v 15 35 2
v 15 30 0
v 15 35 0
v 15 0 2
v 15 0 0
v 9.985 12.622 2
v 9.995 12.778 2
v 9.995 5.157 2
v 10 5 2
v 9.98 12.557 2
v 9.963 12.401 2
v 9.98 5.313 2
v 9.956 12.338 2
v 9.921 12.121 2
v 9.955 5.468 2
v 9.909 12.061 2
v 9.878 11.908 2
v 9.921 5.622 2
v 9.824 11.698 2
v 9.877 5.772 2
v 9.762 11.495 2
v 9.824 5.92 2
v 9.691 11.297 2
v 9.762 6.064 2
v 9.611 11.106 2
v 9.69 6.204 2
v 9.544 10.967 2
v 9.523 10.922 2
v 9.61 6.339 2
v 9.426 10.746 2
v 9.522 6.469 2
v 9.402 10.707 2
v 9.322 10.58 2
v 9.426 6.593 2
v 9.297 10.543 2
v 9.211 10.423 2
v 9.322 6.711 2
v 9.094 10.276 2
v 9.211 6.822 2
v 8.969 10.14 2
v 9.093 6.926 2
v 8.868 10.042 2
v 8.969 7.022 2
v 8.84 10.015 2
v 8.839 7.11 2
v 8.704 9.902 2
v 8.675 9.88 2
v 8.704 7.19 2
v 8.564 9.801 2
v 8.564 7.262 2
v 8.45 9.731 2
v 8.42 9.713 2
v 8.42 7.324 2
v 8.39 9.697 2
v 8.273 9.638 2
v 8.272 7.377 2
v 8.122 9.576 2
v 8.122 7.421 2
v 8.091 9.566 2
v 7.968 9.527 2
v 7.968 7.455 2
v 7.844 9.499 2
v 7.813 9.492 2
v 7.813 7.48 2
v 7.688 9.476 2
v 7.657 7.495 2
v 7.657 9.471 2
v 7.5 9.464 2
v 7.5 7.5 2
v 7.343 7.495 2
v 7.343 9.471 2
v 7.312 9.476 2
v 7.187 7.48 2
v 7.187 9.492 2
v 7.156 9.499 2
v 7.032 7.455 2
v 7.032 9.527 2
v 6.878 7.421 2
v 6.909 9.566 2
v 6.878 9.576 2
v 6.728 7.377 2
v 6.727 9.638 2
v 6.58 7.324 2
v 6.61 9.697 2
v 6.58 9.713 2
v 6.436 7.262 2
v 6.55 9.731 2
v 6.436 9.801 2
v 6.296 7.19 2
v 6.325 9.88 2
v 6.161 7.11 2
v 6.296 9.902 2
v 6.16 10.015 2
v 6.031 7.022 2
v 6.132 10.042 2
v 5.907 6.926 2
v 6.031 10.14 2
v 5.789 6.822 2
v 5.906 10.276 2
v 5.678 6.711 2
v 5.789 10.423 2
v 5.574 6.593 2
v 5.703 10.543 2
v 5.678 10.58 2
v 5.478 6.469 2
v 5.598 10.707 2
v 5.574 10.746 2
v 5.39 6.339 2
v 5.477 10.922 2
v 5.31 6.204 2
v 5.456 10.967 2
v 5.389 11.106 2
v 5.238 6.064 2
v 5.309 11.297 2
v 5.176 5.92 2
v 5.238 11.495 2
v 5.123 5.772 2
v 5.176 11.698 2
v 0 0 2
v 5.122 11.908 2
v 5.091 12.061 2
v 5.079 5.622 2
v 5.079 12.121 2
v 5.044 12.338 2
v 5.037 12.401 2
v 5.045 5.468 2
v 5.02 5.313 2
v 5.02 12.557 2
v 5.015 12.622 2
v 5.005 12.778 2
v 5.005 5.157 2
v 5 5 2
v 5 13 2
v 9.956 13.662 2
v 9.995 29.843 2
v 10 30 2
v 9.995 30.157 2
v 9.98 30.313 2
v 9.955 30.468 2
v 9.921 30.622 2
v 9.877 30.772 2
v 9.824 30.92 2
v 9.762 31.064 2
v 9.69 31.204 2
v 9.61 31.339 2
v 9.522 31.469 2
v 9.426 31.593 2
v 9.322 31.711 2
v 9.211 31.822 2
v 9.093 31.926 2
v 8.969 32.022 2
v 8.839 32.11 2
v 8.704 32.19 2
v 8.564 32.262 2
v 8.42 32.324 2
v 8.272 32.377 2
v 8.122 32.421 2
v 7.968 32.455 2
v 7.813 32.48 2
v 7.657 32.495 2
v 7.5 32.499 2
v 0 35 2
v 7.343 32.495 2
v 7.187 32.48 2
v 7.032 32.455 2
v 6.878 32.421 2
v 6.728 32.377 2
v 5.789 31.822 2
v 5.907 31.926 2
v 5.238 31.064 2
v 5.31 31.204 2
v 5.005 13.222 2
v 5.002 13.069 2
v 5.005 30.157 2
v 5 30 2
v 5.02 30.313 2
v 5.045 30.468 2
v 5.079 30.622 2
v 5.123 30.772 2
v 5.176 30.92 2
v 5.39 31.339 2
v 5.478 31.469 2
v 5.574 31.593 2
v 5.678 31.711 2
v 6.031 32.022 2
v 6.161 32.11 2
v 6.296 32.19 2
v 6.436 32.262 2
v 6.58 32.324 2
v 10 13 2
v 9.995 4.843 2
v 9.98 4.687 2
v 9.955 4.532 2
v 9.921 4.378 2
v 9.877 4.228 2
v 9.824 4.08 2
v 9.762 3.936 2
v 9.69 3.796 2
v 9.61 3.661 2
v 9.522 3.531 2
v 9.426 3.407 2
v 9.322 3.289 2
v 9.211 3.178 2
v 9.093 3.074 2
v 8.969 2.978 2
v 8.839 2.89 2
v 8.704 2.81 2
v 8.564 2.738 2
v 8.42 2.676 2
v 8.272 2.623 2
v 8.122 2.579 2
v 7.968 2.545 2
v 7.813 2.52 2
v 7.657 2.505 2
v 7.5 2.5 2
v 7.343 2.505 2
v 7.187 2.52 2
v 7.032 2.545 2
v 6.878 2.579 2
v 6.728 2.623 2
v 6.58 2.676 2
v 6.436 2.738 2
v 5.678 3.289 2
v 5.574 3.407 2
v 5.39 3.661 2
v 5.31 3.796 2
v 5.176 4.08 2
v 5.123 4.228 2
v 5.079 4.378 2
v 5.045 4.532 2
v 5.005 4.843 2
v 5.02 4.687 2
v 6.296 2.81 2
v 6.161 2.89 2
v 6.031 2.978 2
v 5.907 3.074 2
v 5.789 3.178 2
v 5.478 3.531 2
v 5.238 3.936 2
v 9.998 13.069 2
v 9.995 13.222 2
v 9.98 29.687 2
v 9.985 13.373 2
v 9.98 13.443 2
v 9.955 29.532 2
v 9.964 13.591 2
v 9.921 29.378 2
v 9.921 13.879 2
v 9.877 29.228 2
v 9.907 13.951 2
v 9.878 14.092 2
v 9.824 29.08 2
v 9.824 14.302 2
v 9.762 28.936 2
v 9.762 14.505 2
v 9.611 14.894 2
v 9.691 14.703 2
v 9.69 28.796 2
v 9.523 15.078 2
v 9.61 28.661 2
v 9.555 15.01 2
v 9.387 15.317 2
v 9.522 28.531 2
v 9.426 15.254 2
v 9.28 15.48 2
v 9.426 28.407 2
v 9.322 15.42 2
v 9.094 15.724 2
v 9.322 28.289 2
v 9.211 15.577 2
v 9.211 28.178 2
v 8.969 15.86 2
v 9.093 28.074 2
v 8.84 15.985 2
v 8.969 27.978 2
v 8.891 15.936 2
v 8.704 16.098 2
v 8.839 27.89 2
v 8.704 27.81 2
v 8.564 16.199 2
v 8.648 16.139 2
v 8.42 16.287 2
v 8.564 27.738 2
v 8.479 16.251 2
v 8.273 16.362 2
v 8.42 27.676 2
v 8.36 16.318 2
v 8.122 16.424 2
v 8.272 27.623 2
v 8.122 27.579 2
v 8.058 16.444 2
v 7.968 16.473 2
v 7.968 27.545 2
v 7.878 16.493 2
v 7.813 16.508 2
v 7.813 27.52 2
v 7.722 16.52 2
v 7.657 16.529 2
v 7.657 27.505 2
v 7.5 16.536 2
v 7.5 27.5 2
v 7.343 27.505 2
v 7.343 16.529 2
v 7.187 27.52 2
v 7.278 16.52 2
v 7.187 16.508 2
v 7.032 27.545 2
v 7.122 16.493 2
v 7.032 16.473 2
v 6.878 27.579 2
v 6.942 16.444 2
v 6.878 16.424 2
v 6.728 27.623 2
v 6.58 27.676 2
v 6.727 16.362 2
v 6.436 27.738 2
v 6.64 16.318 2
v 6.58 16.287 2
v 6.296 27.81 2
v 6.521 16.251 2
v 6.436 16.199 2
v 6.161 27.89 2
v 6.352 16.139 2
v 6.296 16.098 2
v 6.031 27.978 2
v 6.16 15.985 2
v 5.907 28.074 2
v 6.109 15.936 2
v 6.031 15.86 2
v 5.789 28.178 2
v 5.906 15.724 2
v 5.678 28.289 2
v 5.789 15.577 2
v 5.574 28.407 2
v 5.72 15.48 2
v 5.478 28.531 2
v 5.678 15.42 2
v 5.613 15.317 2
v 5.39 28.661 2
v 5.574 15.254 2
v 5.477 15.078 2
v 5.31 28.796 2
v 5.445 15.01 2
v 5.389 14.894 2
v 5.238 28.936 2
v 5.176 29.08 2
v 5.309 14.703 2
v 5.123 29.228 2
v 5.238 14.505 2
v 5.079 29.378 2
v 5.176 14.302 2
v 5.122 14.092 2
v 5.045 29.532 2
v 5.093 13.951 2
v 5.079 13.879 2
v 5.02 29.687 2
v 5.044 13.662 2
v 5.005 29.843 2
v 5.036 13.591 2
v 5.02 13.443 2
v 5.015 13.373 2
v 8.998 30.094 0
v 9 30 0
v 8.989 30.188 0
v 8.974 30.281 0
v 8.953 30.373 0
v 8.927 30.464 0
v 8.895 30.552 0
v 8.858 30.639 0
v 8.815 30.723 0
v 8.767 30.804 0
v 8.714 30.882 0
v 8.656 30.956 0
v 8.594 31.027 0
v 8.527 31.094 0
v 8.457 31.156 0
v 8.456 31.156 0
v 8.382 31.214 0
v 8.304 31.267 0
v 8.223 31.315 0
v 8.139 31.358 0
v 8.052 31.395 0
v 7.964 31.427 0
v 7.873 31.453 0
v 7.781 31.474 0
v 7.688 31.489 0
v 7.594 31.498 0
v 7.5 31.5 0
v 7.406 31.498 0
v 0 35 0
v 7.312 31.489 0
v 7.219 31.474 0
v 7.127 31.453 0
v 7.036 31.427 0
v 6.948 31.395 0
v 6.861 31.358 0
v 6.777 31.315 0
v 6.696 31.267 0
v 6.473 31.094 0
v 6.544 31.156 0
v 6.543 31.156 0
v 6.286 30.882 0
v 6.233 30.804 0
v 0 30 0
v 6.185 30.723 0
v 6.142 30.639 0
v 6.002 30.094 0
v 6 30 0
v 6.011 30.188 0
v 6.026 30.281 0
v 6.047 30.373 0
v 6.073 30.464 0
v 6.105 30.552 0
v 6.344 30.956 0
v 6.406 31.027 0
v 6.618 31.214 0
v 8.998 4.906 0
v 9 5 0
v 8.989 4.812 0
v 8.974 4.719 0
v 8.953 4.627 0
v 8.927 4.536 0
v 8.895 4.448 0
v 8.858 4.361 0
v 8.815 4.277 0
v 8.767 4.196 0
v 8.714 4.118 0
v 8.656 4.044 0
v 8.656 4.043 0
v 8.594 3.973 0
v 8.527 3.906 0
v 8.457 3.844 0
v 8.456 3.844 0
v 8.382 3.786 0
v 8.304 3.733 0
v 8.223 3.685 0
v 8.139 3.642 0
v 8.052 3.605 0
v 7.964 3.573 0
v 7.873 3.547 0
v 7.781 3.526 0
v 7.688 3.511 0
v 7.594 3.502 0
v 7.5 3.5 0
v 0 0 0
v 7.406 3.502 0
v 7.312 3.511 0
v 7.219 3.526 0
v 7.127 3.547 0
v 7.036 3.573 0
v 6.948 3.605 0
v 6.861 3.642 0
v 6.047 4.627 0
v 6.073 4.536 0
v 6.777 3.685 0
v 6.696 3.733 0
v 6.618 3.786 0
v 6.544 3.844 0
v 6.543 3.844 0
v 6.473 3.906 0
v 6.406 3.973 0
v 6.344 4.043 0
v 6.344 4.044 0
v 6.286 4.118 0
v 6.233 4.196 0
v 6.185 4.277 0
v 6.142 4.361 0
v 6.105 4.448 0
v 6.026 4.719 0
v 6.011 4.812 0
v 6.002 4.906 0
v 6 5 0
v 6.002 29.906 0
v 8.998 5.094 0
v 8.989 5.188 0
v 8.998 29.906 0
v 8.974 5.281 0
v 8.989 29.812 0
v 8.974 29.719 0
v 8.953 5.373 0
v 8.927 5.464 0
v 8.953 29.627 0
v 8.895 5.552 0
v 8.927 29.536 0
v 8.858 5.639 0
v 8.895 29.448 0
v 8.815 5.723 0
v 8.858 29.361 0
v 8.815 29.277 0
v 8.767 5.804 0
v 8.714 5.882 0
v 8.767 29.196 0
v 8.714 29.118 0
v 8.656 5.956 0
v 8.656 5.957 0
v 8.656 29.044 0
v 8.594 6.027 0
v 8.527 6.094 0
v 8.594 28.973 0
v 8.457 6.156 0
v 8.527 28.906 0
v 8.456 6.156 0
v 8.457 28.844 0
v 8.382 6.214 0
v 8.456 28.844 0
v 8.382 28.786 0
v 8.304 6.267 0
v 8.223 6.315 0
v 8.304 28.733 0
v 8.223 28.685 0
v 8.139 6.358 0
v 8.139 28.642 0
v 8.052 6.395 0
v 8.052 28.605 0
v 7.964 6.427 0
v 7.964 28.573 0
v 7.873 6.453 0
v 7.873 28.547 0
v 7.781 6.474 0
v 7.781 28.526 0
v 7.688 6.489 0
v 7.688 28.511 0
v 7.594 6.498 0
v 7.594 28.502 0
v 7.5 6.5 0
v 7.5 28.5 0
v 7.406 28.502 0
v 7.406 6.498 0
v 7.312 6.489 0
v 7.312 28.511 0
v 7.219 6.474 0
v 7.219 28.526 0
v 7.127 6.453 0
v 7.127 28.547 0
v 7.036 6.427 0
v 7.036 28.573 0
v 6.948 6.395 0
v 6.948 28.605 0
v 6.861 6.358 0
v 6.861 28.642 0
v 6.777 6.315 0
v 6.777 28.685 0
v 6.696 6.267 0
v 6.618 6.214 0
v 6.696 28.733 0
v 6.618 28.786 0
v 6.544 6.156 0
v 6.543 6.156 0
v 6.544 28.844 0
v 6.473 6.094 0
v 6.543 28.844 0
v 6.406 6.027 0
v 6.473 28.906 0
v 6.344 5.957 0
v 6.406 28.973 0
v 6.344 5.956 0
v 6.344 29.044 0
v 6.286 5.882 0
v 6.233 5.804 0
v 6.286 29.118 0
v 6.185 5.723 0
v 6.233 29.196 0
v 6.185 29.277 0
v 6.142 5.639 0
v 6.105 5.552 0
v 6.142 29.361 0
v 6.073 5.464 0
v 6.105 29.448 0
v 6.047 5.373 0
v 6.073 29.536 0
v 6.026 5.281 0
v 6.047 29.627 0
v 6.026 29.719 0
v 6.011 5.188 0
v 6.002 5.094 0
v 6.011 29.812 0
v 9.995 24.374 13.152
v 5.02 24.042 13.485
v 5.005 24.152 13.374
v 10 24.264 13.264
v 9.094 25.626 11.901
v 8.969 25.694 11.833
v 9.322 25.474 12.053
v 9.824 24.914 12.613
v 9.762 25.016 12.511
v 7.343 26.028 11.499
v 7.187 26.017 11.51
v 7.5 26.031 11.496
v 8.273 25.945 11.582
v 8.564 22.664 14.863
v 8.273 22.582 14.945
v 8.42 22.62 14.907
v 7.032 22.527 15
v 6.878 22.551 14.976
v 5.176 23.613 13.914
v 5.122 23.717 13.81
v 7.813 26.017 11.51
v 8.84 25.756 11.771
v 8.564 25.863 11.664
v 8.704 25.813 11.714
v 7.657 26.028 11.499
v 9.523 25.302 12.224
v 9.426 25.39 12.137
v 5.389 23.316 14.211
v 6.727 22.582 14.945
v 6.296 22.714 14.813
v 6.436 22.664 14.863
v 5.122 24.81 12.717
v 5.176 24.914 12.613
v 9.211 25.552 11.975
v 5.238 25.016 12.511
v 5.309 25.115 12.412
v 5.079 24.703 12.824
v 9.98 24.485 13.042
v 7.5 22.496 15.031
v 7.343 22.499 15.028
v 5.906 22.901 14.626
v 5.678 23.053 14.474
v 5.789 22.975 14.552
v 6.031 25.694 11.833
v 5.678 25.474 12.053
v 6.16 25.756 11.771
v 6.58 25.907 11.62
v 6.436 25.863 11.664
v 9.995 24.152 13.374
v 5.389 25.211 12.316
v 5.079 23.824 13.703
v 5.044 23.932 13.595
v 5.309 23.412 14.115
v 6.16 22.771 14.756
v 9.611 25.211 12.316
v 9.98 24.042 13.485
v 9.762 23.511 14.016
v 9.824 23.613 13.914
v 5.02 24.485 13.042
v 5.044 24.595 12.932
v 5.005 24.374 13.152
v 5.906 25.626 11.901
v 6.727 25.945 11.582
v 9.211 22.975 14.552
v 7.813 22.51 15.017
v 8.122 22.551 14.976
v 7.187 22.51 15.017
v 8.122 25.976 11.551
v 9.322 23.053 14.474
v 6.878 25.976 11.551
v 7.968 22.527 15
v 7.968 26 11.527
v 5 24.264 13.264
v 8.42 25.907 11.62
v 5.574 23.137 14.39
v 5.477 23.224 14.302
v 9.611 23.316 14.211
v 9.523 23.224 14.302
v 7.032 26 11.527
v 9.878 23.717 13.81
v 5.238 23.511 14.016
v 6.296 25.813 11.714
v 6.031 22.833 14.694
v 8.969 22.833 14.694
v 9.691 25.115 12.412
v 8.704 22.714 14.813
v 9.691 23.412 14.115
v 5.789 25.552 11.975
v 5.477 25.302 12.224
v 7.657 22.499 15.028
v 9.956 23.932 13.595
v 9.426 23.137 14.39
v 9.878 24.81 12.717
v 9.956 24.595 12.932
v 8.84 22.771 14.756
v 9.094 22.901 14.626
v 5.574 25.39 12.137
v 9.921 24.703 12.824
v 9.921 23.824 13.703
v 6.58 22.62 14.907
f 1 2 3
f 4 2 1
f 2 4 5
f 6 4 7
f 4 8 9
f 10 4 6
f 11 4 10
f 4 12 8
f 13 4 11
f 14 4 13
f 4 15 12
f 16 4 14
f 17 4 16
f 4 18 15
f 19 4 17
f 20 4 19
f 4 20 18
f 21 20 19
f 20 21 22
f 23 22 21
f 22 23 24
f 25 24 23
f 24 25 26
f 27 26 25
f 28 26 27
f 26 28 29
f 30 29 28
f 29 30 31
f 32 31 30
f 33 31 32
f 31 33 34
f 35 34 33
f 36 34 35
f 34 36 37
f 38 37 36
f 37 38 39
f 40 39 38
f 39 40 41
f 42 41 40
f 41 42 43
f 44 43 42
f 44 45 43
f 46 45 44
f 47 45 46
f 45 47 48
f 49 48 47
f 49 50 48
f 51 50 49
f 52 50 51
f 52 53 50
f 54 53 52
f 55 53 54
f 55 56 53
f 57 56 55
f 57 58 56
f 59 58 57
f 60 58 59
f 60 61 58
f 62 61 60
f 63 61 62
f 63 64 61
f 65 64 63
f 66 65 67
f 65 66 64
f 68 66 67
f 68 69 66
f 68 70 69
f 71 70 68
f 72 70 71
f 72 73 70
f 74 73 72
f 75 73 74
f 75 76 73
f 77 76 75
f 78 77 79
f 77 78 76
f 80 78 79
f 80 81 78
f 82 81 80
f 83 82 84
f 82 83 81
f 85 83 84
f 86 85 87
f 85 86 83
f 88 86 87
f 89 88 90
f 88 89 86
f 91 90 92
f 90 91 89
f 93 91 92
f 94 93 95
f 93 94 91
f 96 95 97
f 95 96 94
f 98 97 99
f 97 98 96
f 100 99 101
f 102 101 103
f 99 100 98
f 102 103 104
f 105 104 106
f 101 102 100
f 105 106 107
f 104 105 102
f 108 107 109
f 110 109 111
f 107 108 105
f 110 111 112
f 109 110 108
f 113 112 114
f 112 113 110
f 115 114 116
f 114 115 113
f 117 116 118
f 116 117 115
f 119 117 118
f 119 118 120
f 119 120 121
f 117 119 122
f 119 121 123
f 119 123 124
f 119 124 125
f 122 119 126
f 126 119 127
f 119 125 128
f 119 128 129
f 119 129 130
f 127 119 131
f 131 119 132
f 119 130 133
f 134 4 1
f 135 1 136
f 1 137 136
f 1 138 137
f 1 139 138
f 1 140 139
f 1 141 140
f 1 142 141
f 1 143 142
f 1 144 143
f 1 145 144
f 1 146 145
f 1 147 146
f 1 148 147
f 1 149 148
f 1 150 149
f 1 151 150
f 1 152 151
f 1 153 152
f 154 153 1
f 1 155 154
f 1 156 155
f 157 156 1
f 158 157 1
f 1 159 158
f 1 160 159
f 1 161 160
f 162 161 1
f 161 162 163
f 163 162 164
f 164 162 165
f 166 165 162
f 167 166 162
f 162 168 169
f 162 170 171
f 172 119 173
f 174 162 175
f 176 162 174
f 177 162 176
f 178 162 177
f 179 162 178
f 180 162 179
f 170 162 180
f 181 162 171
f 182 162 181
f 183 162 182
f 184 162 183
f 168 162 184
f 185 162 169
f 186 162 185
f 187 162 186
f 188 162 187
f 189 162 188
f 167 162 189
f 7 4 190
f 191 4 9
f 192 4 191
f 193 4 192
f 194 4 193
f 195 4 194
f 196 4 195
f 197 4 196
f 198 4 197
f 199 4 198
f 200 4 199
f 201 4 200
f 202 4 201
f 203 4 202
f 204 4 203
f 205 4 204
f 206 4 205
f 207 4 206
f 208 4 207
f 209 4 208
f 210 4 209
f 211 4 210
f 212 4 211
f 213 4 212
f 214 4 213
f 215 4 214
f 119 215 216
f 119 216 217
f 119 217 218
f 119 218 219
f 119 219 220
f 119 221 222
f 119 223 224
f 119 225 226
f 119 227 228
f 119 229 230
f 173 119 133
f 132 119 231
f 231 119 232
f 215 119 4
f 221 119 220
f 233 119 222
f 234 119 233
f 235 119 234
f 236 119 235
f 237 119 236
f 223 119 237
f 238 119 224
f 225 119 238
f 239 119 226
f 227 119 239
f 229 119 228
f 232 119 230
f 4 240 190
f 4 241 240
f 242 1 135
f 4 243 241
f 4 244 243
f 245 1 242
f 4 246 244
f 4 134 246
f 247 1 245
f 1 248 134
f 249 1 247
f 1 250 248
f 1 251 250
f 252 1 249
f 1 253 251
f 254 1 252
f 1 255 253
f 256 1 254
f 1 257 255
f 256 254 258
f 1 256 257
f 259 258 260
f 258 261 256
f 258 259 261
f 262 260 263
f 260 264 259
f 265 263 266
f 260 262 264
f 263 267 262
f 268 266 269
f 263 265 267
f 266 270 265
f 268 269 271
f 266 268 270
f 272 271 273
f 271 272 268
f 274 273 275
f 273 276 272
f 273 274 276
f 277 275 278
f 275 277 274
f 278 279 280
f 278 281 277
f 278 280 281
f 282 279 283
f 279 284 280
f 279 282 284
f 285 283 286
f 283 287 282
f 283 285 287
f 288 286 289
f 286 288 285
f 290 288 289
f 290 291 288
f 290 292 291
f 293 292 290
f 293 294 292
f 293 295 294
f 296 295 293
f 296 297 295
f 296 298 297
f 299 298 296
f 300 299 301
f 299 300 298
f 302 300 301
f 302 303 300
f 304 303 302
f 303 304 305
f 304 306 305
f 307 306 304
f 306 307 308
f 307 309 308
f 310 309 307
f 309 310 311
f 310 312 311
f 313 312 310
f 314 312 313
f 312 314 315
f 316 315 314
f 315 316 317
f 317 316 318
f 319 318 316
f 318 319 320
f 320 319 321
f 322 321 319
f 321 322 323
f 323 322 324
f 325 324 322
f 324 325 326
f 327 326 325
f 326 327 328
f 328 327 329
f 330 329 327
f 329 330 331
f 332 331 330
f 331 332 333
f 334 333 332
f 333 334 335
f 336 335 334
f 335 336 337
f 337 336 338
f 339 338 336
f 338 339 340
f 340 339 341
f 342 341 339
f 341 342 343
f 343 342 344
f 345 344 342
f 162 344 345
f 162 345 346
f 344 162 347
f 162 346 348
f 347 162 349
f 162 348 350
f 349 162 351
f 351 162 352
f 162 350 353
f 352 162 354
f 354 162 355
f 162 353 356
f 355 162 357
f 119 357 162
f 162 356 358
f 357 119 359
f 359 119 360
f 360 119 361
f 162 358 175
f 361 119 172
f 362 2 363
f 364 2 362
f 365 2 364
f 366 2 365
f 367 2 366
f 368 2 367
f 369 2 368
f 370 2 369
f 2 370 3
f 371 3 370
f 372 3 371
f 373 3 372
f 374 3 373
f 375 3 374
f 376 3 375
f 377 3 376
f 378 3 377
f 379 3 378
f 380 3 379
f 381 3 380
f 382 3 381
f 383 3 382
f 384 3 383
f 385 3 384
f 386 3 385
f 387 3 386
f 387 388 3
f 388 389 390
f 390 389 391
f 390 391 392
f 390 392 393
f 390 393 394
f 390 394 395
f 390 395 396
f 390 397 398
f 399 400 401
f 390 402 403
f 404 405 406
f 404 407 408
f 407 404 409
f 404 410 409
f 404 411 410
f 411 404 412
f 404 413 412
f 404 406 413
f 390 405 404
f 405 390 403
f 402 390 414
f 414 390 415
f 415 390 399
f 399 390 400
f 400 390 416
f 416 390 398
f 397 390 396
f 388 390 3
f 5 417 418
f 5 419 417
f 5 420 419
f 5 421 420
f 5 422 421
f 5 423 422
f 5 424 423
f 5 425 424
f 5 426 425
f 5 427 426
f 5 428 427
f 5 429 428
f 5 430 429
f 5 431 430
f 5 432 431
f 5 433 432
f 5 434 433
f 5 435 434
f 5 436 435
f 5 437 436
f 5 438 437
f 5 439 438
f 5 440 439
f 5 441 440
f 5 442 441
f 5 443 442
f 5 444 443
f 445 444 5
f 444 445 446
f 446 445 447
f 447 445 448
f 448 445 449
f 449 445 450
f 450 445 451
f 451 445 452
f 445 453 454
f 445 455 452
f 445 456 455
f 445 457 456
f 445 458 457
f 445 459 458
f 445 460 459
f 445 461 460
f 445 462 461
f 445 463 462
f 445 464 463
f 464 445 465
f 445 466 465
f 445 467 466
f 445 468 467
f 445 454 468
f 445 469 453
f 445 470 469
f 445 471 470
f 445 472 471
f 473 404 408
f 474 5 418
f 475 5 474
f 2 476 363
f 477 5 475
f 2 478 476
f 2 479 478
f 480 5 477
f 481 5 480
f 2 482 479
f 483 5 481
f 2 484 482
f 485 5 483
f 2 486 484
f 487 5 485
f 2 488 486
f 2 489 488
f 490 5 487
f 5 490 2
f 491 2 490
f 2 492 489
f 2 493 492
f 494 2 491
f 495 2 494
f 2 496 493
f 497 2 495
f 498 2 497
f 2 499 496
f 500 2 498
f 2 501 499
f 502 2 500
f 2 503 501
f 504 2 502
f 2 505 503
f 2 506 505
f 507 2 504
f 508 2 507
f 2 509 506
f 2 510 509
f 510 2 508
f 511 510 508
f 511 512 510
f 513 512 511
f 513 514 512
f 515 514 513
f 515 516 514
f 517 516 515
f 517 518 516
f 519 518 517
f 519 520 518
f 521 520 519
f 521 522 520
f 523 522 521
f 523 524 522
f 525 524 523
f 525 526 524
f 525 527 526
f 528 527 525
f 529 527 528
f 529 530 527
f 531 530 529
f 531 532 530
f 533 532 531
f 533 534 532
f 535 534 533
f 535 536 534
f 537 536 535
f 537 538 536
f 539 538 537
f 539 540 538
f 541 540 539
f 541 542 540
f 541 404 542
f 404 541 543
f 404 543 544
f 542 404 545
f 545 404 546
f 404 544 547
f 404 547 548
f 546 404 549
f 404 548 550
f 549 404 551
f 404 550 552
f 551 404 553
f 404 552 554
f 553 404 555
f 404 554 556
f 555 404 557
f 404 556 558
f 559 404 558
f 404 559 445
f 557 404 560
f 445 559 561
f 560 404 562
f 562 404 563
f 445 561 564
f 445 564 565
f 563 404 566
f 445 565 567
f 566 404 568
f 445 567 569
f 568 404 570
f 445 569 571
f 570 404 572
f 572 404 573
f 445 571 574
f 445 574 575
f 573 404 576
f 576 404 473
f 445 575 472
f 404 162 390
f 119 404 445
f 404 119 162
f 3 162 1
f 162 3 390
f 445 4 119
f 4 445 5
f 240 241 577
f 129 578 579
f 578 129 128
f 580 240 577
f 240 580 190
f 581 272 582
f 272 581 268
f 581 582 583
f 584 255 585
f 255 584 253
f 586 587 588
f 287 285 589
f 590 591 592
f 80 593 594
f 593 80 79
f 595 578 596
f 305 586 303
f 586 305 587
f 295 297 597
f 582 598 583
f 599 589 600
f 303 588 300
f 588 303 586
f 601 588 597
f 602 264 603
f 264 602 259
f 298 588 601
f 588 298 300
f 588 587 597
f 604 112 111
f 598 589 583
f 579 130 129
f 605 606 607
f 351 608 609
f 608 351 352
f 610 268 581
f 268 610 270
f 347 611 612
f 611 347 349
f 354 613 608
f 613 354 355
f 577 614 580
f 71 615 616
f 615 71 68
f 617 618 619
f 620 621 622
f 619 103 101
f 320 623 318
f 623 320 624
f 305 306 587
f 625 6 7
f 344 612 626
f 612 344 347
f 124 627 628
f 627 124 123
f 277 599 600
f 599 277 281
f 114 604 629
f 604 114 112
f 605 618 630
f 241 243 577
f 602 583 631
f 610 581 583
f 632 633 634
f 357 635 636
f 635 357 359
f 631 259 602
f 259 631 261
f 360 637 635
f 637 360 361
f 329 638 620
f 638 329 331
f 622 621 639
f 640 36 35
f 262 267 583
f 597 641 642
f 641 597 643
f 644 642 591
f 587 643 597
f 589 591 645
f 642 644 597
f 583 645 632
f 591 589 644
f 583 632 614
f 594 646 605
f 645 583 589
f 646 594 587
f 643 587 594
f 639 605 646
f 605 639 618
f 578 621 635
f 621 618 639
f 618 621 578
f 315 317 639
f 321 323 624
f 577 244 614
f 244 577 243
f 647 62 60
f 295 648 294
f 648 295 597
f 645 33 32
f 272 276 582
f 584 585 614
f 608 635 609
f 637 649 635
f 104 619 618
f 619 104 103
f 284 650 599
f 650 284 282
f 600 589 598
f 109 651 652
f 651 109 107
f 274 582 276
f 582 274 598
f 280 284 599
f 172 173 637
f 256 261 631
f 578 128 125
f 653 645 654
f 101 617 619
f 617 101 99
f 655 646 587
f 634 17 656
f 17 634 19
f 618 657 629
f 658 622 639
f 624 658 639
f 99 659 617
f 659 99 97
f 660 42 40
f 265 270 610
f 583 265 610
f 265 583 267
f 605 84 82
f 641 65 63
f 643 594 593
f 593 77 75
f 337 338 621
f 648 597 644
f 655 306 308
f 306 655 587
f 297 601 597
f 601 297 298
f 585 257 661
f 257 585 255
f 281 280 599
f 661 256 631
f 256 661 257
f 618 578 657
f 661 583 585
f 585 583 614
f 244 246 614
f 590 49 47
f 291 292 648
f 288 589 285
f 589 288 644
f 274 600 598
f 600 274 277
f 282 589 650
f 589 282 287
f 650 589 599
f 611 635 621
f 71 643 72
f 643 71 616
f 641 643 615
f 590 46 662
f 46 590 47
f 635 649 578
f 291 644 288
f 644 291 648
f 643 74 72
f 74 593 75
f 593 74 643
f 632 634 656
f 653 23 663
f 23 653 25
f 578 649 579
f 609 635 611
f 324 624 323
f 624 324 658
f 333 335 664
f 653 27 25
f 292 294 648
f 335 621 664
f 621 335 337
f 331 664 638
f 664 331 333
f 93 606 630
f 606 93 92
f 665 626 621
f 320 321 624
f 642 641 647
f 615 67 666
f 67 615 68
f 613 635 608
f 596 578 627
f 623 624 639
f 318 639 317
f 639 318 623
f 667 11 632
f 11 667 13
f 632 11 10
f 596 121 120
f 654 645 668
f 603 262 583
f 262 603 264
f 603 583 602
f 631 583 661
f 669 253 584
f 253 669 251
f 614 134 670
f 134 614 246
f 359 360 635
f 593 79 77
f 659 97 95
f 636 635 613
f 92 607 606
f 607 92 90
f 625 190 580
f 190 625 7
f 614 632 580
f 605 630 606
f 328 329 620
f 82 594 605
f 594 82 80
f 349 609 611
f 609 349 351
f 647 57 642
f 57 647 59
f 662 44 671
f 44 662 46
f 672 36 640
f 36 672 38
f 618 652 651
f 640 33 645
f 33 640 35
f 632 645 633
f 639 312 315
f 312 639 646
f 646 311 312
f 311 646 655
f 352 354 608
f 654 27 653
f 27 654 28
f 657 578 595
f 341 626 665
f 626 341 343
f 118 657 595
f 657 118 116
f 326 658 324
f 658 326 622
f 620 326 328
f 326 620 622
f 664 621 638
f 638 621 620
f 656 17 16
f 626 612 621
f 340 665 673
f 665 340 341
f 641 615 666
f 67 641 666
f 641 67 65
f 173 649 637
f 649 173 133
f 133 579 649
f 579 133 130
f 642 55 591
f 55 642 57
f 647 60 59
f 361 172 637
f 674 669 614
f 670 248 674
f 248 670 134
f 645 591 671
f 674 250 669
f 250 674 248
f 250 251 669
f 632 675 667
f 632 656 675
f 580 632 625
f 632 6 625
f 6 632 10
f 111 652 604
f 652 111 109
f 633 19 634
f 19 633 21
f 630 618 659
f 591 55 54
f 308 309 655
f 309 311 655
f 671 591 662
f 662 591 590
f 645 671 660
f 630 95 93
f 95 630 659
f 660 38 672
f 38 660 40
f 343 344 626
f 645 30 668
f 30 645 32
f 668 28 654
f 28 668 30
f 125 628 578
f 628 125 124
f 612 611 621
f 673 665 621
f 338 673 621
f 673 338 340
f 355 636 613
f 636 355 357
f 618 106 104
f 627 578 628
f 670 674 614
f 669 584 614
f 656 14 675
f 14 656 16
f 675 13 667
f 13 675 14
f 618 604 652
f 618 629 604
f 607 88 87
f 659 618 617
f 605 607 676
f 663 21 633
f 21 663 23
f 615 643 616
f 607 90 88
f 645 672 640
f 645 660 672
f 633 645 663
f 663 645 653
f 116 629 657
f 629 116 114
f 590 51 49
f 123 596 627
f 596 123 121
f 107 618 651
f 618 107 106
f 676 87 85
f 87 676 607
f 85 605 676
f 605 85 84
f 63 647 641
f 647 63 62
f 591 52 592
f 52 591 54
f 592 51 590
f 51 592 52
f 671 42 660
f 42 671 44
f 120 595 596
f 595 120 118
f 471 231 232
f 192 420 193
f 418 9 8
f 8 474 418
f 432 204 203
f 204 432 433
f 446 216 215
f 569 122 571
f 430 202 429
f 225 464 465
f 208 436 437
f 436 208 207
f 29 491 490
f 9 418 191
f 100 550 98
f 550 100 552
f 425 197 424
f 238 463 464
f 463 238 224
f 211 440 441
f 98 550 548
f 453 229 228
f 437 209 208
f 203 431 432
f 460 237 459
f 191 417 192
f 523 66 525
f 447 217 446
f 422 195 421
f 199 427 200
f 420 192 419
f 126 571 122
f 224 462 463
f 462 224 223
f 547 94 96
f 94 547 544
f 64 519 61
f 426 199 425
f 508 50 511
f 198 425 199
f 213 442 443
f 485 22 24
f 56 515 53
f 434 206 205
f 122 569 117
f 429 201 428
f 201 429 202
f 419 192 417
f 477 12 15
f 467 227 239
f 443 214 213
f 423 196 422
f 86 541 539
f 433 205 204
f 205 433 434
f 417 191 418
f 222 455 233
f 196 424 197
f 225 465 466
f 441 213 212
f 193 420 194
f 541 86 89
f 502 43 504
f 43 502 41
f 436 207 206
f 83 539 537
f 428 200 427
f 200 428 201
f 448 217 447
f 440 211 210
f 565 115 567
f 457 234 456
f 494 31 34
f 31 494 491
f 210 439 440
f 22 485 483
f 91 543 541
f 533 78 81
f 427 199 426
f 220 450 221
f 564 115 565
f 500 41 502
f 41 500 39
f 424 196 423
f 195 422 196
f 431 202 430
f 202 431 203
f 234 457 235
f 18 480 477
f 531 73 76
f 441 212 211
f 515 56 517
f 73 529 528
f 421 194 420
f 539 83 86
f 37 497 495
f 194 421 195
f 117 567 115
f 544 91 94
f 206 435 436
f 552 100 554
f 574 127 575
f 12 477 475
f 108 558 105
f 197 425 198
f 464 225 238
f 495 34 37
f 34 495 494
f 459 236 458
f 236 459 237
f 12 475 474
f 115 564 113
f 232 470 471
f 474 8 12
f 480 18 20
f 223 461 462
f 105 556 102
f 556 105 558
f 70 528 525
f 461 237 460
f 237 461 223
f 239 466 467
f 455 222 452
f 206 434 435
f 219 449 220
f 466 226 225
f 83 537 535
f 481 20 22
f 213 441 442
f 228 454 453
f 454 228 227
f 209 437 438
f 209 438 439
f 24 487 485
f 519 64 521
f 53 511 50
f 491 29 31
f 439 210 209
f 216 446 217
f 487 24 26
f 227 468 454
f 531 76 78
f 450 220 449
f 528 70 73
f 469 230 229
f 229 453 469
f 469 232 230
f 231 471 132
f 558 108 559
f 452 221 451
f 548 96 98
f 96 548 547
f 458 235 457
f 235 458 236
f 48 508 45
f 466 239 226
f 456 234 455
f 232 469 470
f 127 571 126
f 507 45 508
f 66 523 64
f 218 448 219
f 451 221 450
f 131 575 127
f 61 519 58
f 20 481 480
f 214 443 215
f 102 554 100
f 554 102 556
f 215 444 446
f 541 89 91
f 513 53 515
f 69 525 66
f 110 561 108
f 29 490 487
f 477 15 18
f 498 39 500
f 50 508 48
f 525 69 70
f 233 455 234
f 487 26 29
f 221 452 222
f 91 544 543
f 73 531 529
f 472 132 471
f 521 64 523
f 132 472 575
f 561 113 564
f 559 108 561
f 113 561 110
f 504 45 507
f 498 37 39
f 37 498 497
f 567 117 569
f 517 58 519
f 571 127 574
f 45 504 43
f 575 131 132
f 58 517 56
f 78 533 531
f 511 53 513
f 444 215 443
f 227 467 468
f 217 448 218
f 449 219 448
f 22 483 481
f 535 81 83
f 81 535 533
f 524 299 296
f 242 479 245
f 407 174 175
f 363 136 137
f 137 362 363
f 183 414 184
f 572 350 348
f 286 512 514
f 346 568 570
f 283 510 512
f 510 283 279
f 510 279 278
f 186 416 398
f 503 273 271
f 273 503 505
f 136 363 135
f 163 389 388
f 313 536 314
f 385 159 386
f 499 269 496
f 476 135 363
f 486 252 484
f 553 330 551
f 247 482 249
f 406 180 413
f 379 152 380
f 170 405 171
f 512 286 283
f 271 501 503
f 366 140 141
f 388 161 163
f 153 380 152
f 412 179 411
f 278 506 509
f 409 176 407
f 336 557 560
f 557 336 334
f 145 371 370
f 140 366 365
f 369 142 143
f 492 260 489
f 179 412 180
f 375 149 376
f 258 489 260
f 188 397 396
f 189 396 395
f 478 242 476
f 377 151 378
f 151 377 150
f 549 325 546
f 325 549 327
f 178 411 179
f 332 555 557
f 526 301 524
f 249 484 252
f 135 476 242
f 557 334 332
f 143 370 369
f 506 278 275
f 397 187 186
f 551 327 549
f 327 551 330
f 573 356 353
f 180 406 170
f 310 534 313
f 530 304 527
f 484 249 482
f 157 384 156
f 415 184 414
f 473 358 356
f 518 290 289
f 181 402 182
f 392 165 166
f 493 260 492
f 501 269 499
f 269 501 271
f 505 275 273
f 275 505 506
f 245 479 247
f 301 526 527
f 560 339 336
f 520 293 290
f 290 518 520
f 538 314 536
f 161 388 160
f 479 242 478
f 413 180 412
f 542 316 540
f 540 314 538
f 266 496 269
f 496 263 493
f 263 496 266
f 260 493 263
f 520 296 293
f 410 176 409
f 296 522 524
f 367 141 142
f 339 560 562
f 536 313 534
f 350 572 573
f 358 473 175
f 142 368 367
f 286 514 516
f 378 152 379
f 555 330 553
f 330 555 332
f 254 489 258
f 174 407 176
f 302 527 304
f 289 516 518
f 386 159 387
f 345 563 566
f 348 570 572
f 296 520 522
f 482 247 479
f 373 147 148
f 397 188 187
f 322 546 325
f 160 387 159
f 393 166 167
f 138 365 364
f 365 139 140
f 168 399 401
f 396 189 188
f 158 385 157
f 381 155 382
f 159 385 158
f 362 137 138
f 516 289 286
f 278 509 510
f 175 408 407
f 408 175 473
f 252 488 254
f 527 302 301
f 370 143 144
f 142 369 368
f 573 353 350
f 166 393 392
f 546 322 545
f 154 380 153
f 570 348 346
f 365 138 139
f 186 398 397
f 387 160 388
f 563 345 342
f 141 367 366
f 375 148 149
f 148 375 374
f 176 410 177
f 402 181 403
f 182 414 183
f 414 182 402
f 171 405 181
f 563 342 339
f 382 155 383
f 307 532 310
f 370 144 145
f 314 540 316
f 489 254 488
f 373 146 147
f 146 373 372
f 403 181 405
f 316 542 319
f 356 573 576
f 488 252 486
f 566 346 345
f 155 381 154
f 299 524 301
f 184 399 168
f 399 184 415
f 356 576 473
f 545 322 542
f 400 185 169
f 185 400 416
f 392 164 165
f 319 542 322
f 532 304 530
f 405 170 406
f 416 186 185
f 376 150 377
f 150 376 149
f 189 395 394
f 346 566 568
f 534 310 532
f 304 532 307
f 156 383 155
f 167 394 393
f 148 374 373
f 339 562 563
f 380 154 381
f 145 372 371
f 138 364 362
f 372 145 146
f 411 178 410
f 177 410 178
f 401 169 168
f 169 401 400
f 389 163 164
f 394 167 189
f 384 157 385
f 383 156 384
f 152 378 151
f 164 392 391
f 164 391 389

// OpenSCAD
//
// ktRACK3
//
//


gap1 = 0.001;
gap2 = 0.002;

panel_thick = 2;

X = 60;
Y = 40;
Z = 30;


key_pitch_x = 19;
key_pitch_y = 19;
hole_x = 14;
hole_y = 14;
keybase_thick = 5;


difference()
{
    union()
    {
        translate([0, 0, 0]) cube([15, 35, panel_thick]);
        translate([15/2, 8, -3]) rotate([-45, 0, 0]) cylinder( 23, d=5, $fn=100);
    }
    translate([15/2, 5, -gap1]) rotate([0, 0, 0]) cylinder(  panel_thick+gap2, d1=3, d2=5, $fn=100);
    translate([15/2, 35-5, -gap1]) rotate([0, 0, 0]) cylinder(  panel_thick+gap2, d1=3, d2=5, $fn=100);
    
    translate([0, 0, -30]) cube([15, 30, 30]);
}
